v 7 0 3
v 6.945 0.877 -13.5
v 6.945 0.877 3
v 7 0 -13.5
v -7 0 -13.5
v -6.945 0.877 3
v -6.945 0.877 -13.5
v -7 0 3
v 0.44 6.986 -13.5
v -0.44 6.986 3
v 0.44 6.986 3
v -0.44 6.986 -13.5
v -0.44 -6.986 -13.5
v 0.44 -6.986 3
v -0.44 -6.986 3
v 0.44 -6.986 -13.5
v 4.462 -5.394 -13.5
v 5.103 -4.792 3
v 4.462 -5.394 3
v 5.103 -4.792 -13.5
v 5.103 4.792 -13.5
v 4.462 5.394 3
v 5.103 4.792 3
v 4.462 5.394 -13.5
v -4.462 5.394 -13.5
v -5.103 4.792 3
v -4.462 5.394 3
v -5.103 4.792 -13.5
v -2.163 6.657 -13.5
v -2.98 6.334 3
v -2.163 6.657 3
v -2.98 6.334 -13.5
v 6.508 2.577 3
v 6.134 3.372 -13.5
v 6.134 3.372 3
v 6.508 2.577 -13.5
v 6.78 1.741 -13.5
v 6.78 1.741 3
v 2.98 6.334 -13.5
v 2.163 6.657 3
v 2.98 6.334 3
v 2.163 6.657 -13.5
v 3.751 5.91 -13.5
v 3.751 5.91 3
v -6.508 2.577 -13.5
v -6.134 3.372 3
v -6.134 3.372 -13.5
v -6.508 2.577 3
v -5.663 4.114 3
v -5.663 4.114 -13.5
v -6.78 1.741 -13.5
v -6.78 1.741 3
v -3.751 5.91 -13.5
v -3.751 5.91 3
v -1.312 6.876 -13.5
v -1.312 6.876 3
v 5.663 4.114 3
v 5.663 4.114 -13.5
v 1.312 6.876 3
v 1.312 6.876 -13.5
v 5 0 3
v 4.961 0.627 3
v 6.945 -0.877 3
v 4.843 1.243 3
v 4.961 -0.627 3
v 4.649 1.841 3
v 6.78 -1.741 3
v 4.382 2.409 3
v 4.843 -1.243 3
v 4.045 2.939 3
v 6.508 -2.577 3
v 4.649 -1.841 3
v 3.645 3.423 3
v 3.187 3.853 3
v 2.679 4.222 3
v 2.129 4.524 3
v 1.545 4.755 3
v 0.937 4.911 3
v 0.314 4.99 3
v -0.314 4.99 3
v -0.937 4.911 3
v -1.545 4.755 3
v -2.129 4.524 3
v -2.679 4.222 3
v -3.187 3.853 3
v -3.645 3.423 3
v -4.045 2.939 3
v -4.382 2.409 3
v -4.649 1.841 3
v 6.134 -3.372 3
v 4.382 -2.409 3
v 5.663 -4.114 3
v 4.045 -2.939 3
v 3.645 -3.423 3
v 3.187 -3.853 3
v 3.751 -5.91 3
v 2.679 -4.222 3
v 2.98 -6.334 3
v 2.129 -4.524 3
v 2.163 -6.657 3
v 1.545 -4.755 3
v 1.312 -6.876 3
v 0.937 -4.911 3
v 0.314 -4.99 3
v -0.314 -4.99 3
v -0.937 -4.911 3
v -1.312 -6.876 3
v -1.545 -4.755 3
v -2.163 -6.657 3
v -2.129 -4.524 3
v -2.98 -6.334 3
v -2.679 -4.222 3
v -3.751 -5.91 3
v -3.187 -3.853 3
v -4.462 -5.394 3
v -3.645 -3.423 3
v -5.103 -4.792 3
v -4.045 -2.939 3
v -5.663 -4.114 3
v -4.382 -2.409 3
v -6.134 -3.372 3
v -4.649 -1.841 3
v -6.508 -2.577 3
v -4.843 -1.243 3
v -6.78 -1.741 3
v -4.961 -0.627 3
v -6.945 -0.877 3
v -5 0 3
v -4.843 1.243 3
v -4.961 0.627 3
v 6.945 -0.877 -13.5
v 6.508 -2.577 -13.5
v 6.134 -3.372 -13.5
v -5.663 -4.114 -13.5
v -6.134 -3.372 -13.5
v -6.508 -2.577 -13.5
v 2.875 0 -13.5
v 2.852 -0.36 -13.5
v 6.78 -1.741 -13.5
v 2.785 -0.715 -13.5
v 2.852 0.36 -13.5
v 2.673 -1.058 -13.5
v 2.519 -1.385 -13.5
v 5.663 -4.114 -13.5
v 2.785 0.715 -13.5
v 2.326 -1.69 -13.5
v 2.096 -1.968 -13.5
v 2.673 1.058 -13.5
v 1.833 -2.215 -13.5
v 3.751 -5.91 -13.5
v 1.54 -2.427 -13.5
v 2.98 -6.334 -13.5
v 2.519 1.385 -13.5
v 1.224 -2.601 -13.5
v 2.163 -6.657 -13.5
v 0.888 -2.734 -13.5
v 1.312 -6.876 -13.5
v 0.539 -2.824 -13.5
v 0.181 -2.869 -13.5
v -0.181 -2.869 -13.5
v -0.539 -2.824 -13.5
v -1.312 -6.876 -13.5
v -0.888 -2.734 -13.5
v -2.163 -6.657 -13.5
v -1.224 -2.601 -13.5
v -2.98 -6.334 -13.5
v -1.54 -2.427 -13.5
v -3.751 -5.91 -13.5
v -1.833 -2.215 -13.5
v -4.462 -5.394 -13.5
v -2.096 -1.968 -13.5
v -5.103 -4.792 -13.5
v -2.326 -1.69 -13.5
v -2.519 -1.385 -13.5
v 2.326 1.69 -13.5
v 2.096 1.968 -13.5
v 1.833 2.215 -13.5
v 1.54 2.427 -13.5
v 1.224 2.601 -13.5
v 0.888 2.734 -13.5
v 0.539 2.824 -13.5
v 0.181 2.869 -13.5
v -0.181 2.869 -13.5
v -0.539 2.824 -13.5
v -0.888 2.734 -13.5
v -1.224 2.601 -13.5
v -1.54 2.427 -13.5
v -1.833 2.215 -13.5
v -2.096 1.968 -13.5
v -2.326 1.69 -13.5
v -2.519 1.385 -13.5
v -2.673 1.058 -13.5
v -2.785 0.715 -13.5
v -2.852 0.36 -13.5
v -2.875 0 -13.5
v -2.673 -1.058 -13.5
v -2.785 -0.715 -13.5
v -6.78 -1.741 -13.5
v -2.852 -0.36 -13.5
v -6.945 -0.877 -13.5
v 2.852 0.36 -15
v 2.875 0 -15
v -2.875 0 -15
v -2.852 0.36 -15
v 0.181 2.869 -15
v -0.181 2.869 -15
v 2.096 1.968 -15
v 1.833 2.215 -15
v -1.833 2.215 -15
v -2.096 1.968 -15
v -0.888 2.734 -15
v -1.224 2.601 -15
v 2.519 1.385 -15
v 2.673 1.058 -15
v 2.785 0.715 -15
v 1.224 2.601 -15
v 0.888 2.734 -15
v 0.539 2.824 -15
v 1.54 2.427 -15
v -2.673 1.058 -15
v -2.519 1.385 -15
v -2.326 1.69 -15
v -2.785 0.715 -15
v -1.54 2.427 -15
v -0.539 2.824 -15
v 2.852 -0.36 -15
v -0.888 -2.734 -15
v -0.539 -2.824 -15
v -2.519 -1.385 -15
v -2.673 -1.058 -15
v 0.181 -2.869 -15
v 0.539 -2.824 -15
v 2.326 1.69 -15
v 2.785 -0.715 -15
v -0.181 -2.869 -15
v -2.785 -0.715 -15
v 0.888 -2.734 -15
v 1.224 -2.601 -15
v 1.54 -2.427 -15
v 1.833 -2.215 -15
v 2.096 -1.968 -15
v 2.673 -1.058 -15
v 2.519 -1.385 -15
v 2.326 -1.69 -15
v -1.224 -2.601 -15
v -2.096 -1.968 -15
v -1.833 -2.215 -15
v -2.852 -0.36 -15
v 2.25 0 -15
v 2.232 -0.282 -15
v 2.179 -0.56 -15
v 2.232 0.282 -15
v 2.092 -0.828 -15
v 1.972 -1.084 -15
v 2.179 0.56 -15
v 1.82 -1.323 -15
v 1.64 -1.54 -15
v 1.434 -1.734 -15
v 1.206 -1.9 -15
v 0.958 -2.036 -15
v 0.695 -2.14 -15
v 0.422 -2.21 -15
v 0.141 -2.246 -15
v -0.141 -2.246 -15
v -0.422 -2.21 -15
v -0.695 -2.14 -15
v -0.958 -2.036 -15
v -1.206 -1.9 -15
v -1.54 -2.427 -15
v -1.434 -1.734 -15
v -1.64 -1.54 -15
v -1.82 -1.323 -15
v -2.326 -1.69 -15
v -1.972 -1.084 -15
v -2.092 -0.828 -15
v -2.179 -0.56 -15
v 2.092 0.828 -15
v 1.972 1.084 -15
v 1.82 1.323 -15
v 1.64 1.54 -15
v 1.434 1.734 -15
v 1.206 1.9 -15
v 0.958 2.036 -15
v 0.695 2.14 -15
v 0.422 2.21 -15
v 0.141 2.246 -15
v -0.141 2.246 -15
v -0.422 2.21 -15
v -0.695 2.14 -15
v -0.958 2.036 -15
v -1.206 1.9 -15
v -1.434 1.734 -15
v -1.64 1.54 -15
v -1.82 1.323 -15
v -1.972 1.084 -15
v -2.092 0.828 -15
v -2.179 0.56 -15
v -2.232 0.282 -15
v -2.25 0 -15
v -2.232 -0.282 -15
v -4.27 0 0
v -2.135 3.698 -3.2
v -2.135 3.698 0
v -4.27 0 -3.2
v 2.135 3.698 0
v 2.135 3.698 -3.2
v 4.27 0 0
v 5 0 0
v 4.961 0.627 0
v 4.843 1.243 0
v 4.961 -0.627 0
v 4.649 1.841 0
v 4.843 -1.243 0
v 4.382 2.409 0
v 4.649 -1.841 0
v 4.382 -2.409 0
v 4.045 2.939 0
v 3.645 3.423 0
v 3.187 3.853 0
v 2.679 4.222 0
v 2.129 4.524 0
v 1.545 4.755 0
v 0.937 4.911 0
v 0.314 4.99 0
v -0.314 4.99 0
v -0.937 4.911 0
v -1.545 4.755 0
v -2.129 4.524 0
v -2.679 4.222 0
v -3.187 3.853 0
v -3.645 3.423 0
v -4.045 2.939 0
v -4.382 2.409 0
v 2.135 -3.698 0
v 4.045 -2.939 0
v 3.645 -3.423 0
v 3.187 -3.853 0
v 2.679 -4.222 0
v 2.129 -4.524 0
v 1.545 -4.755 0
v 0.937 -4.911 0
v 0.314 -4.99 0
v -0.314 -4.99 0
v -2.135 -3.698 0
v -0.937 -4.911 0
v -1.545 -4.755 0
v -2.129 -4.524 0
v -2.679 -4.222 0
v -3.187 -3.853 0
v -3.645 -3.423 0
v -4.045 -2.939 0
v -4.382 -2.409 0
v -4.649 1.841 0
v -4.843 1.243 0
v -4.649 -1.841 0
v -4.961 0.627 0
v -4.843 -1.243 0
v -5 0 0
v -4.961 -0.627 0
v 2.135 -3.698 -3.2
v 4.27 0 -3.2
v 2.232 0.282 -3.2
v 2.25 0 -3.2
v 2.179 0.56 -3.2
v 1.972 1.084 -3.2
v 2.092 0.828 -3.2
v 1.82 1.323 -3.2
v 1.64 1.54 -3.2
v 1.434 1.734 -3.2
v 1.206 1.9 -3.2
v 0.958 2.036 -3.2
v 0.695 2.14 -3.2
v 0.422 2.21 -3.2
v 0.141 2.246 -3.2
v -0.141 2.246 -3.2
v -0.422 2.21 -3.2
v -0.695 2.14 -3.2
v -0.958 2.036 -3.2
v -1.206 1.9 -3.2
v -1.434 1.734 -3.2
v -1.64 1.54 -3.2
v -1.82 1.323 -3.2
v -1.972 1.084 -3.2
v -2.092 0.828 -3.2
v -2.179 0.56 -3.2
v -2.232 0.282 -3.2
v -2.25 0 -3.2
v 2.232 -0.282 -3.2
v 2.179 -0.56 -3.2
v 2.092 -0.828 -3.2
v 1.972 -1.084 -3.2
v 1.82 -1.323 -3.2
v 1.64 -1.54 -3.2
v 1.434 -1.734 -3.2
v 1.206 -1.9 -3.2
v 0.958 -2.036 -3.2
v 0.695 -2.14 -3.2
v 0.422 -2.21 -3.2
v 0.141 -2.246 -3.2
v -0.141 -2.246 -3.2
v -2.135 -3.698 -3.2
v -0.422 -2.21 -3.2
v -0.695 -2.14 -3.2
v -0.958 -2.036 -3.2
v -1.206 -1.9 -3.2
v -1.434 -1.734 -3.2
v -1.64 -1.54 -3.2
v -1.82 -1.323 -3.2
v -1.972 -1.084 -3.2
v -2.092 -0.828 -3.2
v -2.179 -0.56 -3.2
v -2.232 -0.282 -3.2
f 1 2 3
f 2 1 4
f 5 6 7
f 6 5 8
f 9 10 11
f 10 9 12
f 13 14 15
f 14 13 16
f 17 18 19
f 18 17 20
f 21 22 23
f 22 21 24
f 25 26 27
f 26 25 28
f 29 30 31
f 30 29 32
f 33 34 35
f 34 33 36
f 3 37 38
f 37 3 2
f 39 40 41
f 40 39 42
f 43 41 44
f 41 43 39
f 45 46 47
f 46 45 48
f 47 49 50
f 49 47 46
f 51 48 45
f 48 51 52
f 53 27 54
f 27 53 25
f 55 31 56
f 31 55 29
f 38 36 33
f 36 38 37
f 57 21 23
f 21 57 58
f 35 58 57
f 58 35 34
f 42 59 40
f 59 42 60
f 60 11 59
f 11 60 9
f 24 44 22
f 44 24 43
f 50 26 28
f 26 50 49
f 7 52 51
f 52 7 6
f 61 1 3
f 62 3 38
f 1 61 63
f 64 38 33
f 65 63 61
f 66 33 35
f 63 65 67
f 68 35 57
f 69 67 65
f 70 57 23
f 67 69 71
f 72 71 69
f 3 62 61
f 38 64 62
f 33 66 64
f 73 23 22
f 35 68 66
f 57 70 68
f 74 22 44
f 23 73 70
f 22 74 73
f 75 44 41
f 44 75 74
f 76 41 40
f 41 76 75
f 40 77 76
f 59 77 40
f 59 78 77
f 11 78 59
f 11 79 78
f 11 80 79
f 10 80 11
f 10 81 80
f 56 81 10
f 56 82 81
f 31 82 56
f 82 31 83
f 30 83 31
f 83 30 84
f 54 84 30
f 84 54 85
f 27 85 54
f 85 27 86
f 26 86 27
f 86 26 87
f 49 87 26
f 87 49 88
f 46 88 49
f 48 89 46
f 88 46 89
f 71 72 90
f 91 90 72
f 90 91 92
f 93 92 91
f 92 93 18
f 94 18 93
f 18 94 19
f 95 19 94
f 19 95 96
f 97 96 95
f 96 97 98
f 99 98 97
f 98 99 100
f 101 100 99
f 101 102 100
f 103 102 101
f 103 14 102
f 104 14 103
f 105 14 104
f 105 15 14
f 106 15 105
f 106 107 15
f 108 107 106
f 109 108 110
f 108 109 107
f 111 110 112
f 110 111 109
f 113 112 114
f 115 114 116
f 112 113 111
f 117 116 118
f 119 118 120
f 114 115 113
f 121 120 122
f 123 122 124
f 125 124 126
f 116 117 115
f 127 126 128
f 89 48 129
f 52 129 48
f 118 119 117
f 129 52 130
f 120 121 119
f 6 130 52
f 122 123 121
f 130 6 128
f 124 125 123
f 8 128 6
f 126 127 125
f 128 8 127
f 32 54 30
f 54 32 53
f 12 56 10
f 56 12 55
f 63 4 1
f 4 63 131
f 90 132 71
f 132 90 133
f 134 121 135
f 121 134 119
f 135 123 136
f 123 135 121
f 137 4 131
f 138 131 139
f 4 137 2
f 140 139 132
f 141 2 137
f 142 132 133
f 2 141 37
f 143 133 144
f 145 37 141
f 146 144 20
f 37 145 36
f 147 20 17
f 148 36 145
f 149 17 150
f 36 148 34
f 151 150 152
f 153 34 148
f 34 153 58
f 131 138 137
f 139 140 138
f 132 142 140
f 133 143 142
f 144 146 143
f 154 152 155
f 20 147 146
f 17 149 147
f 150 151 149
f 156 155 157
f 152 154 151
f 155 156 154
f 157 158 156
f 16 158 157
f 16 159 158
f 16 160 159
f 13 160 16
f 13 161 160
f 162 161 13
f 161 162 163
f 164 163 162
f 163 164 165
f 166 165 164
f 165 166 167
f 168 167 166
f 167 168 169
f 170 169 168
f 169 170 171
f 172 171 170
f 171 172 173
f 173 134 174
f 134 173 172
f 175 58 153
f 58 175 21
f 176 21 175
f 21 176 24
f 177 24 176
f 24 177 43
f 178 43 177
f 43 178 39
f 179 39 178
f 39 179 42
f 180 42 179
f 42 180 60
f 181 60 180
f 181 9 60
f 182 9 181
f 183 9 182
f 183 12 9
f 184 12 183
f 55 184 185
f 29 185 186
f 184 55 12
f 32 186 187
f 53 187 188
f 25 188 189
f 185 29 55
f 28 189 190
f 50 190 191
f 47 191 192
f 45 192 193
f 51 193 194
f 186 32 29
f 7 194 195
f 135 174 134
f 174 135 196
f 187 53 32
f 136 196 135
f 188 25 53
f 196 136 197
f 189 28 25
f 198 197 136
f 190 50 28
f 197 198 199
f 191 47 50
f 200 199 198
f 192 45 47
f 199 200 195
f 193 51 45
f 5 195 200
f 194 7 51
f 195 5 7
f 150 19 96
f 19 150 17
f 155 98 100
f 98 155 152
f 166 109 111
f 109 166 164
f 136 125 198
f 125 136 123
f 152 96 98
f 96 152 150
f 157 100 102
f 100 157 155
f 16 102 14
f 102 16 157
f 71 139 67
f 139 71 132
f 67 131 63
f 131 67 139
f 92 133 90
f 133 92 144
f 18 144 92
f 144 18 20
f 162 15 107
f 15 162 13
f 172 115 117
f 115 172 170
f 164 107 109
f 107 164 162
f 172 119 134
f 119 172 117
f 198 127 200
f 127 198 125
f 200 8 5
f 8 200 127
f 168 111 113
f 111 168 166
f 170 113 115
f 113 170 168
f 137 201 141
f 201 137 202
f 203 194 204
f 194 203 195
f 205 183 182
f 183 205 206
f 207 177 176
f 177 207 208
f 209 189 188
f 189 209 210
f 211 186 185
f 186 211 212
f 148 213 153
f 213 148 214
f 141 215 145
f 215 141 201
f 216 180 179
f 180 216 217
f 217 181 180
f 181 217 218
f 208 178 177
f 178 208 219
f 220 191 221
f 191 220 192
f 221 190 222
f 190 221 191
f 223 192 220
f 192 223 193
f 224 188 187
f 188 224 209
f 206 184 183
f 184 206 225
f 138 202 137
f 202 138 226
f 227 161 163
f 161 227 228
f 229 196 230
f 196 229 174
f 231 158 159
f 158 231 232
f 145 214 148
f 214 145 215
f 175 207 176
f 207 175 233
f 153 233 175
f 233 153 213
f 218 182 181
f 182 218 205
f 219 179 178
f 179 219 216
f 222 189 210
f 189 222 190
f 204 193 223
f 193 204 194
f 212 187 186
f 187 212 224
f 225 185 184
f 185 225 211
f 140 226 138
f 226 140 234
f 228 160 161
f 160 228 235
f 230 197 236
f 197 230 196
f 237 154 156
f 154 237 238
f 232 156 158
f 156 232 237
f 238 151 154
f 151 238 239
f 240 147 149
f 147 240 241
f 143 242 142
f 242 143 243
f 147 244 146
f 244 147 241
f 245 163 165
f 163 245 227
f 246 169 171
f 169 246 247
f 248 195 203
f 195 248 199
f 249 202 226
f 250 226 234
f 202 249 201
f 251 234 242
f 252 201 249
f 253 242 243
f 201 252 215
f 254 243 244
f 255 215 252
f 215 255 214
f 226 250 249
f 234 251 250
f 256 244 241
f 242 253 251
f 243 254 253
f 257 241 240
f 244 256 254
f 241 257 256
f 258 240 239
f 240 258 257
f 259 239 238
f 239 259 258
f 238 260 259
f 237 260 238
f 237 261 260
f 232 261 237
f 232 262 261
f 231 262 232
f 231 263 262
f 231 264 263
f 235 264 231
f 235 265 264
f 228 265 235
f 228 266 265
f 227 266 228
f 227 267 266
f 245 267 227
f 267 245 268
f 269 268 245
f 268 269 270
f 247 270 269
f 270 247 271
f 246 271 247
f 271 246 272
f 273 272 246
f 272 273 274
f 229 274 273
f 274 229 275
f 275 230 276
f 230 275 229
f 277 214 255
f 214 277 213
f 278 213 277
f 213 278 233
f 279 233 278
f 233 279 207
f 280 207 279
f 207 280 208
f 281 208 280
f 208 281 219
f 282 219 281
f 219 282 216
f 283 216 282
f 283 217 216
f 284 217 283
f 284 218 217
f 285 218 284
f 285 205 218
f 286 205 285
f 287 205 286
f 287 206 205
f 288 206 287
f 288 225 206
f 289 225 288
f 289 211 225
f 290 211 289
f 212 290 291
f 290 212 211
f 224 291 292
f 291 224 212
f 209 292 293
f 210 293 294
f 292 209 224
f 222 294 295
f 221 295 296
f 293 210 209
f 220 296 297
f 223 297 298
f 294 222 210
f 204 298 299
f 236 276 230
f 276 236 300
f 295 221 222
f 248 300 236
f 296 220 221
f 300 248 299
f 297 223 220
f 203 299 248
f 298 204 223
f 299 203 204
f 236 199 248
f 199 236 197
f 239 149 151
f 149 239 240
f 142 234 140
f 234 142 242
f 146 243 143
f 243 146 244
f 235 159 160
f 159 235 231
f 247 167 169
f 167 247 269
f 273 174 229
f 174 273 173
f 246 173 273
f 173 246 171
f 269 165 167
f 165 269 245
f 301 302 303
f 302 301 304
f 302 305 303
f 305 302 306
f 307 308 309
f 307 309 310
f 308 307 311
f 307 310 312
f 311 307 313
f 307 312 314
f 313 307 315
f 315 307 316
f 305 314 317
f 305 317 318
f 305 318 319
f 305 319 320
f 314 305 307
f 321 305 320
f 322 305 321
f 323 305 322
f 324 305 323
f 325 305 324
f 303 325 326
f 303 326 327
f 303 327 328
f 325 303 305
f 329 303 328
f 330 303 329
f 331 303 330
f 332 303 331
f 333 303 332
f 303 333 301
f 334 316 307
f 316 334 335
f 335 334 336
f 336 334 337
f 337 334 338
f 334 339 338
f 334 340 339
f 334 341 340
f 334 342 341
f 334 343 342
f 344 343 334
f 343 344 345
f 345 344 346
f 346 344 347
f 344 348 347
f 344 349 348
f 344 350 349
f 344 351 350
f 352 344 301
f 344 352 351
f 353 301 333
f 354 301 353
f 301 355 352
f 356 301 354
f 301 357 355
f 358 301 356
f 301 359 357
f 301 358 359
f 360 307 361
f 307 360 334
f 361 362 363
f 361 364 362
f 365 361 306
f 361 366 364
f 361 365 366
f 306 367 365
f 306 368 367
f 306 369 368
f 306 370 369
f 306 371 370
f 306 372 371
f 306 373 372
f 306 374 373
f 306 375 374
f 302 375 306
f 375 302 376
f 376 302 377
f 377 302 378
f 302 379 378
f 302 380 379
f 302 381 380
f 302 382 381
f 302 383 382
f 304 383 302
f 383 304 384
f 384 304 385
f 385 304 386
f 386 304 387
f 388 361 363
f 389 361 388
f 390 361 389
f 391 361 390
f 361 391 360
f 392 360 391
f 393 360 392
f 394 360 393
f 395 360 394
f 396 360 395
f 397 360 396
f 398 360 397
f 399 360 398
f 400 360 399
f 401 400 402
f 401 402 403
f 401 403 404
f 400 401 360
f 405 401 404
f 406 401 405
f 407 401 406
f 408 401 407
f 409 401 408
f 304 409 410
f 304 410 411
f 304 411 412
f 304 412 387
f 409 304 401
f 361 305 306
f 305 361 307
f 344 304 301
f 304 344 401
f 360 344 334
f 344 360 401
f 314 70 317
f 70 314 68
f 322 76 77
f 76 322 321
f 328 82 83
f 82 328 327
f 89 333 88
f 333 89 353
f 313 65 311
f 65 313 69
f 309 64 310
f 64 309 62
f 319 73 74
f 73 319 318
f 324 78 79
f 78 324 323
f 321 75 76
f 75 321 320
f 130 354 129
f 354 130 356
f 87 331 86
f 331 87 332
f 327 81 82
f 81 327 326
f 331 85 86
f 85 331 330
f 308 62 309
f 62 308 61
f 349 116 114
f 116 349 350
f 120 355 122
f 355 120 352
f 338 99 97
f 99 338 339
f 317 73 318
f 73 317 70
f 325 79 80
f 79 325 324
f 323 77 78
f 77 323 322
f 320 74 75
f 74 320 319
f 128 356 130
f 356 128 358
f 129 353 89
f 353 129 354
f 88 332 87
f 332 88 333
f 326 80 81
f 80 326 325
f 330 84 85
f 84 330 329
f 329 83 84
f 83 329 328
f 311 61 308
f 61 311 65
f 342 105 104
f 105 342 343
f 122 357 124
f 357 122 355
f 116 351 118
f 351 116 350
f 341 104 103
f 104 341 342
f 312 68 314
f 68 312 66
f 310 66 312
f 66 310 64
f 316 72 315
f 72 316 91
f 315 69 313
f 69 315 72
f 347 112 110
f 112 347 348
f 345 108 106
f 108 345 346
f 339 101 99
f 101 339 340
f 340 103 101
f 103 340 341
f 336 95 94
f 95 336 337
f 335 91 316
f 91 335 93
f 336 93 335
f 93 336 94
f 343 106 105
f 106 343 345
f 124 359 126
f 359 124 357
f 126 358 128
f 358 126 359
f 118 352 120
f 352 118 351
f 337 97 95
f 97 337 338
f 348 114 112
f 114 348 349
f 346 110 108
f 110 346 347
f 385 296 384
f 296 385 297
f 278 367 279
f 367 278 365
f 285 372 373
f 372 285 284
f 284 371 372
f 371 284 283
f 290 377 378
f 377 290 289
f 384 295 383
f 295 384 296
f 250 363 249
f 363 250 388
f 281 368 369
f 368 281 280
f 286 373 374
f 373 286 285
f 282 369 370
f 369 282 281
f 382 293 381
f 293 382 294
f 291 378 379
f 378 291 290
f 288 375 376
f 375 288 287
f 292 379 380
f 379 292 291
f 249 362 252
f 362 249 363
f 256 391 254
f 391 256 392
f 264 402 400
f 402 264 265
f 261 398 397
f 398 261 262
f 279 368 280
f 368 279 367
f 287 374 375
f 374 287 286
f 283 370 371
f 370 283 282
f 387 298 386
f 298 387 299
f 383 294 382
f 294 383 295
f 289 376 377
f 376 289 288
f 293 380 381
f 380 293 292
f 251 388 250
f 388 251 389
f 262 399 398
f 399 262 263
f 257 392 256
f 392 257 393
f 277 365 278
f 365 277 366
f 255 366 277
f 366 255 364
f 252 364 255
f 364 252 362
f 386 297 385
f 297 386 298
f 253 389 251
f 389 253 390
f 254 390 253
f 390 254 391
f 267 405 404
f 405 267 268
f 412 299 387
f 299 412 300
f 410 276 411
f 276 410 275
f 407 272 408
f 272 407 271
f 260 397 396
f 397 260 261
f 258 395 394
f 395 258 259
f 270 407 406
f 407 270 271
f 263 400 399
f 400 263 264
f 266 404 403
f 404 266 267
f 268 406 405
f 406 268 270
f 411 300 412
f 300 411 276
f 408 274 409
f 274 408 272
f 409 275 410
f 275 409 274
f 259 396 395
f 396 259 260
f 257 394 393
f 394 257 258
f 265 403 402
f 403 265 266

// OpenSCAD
$fn = 50;

difference() {
	union() {
		translate(v = [0, 0, -13.5]) {
			cylinder(h = 16.5, r = 7.0);
		}
		#translate(v = [0, 0, -15.0]) {
			cylinder(h = 15, r = 2.875);
		}
	}
	union() {
		translate(v = [0, 0, 0]) {
			rotate(a = [0, 0, 0]) {
				difference() {
					union() {
						translate(v = [0, 0, -3.2]) {
							linear_extrude(height = 3.2) {
								polygon(points = [[4.2698, 0.0], [2.1349000000000005, 3.697755269078796], [-2.134899999999999, 3.6977552690787965], [-4.2698, 5.228996902999369e-16], [-2.134900000000002, -3.6977552690787956], [2.1348999999999974, -3.697755269078798]]);
							}
						}
					}
					union();
				}
			}
		}
		#cylinder(h = 3, r = 5.0);
		#translate(v = [0, 0, -100.0]) {
			cylinder(h = 200, r = 2.25);
		}
	}
}
